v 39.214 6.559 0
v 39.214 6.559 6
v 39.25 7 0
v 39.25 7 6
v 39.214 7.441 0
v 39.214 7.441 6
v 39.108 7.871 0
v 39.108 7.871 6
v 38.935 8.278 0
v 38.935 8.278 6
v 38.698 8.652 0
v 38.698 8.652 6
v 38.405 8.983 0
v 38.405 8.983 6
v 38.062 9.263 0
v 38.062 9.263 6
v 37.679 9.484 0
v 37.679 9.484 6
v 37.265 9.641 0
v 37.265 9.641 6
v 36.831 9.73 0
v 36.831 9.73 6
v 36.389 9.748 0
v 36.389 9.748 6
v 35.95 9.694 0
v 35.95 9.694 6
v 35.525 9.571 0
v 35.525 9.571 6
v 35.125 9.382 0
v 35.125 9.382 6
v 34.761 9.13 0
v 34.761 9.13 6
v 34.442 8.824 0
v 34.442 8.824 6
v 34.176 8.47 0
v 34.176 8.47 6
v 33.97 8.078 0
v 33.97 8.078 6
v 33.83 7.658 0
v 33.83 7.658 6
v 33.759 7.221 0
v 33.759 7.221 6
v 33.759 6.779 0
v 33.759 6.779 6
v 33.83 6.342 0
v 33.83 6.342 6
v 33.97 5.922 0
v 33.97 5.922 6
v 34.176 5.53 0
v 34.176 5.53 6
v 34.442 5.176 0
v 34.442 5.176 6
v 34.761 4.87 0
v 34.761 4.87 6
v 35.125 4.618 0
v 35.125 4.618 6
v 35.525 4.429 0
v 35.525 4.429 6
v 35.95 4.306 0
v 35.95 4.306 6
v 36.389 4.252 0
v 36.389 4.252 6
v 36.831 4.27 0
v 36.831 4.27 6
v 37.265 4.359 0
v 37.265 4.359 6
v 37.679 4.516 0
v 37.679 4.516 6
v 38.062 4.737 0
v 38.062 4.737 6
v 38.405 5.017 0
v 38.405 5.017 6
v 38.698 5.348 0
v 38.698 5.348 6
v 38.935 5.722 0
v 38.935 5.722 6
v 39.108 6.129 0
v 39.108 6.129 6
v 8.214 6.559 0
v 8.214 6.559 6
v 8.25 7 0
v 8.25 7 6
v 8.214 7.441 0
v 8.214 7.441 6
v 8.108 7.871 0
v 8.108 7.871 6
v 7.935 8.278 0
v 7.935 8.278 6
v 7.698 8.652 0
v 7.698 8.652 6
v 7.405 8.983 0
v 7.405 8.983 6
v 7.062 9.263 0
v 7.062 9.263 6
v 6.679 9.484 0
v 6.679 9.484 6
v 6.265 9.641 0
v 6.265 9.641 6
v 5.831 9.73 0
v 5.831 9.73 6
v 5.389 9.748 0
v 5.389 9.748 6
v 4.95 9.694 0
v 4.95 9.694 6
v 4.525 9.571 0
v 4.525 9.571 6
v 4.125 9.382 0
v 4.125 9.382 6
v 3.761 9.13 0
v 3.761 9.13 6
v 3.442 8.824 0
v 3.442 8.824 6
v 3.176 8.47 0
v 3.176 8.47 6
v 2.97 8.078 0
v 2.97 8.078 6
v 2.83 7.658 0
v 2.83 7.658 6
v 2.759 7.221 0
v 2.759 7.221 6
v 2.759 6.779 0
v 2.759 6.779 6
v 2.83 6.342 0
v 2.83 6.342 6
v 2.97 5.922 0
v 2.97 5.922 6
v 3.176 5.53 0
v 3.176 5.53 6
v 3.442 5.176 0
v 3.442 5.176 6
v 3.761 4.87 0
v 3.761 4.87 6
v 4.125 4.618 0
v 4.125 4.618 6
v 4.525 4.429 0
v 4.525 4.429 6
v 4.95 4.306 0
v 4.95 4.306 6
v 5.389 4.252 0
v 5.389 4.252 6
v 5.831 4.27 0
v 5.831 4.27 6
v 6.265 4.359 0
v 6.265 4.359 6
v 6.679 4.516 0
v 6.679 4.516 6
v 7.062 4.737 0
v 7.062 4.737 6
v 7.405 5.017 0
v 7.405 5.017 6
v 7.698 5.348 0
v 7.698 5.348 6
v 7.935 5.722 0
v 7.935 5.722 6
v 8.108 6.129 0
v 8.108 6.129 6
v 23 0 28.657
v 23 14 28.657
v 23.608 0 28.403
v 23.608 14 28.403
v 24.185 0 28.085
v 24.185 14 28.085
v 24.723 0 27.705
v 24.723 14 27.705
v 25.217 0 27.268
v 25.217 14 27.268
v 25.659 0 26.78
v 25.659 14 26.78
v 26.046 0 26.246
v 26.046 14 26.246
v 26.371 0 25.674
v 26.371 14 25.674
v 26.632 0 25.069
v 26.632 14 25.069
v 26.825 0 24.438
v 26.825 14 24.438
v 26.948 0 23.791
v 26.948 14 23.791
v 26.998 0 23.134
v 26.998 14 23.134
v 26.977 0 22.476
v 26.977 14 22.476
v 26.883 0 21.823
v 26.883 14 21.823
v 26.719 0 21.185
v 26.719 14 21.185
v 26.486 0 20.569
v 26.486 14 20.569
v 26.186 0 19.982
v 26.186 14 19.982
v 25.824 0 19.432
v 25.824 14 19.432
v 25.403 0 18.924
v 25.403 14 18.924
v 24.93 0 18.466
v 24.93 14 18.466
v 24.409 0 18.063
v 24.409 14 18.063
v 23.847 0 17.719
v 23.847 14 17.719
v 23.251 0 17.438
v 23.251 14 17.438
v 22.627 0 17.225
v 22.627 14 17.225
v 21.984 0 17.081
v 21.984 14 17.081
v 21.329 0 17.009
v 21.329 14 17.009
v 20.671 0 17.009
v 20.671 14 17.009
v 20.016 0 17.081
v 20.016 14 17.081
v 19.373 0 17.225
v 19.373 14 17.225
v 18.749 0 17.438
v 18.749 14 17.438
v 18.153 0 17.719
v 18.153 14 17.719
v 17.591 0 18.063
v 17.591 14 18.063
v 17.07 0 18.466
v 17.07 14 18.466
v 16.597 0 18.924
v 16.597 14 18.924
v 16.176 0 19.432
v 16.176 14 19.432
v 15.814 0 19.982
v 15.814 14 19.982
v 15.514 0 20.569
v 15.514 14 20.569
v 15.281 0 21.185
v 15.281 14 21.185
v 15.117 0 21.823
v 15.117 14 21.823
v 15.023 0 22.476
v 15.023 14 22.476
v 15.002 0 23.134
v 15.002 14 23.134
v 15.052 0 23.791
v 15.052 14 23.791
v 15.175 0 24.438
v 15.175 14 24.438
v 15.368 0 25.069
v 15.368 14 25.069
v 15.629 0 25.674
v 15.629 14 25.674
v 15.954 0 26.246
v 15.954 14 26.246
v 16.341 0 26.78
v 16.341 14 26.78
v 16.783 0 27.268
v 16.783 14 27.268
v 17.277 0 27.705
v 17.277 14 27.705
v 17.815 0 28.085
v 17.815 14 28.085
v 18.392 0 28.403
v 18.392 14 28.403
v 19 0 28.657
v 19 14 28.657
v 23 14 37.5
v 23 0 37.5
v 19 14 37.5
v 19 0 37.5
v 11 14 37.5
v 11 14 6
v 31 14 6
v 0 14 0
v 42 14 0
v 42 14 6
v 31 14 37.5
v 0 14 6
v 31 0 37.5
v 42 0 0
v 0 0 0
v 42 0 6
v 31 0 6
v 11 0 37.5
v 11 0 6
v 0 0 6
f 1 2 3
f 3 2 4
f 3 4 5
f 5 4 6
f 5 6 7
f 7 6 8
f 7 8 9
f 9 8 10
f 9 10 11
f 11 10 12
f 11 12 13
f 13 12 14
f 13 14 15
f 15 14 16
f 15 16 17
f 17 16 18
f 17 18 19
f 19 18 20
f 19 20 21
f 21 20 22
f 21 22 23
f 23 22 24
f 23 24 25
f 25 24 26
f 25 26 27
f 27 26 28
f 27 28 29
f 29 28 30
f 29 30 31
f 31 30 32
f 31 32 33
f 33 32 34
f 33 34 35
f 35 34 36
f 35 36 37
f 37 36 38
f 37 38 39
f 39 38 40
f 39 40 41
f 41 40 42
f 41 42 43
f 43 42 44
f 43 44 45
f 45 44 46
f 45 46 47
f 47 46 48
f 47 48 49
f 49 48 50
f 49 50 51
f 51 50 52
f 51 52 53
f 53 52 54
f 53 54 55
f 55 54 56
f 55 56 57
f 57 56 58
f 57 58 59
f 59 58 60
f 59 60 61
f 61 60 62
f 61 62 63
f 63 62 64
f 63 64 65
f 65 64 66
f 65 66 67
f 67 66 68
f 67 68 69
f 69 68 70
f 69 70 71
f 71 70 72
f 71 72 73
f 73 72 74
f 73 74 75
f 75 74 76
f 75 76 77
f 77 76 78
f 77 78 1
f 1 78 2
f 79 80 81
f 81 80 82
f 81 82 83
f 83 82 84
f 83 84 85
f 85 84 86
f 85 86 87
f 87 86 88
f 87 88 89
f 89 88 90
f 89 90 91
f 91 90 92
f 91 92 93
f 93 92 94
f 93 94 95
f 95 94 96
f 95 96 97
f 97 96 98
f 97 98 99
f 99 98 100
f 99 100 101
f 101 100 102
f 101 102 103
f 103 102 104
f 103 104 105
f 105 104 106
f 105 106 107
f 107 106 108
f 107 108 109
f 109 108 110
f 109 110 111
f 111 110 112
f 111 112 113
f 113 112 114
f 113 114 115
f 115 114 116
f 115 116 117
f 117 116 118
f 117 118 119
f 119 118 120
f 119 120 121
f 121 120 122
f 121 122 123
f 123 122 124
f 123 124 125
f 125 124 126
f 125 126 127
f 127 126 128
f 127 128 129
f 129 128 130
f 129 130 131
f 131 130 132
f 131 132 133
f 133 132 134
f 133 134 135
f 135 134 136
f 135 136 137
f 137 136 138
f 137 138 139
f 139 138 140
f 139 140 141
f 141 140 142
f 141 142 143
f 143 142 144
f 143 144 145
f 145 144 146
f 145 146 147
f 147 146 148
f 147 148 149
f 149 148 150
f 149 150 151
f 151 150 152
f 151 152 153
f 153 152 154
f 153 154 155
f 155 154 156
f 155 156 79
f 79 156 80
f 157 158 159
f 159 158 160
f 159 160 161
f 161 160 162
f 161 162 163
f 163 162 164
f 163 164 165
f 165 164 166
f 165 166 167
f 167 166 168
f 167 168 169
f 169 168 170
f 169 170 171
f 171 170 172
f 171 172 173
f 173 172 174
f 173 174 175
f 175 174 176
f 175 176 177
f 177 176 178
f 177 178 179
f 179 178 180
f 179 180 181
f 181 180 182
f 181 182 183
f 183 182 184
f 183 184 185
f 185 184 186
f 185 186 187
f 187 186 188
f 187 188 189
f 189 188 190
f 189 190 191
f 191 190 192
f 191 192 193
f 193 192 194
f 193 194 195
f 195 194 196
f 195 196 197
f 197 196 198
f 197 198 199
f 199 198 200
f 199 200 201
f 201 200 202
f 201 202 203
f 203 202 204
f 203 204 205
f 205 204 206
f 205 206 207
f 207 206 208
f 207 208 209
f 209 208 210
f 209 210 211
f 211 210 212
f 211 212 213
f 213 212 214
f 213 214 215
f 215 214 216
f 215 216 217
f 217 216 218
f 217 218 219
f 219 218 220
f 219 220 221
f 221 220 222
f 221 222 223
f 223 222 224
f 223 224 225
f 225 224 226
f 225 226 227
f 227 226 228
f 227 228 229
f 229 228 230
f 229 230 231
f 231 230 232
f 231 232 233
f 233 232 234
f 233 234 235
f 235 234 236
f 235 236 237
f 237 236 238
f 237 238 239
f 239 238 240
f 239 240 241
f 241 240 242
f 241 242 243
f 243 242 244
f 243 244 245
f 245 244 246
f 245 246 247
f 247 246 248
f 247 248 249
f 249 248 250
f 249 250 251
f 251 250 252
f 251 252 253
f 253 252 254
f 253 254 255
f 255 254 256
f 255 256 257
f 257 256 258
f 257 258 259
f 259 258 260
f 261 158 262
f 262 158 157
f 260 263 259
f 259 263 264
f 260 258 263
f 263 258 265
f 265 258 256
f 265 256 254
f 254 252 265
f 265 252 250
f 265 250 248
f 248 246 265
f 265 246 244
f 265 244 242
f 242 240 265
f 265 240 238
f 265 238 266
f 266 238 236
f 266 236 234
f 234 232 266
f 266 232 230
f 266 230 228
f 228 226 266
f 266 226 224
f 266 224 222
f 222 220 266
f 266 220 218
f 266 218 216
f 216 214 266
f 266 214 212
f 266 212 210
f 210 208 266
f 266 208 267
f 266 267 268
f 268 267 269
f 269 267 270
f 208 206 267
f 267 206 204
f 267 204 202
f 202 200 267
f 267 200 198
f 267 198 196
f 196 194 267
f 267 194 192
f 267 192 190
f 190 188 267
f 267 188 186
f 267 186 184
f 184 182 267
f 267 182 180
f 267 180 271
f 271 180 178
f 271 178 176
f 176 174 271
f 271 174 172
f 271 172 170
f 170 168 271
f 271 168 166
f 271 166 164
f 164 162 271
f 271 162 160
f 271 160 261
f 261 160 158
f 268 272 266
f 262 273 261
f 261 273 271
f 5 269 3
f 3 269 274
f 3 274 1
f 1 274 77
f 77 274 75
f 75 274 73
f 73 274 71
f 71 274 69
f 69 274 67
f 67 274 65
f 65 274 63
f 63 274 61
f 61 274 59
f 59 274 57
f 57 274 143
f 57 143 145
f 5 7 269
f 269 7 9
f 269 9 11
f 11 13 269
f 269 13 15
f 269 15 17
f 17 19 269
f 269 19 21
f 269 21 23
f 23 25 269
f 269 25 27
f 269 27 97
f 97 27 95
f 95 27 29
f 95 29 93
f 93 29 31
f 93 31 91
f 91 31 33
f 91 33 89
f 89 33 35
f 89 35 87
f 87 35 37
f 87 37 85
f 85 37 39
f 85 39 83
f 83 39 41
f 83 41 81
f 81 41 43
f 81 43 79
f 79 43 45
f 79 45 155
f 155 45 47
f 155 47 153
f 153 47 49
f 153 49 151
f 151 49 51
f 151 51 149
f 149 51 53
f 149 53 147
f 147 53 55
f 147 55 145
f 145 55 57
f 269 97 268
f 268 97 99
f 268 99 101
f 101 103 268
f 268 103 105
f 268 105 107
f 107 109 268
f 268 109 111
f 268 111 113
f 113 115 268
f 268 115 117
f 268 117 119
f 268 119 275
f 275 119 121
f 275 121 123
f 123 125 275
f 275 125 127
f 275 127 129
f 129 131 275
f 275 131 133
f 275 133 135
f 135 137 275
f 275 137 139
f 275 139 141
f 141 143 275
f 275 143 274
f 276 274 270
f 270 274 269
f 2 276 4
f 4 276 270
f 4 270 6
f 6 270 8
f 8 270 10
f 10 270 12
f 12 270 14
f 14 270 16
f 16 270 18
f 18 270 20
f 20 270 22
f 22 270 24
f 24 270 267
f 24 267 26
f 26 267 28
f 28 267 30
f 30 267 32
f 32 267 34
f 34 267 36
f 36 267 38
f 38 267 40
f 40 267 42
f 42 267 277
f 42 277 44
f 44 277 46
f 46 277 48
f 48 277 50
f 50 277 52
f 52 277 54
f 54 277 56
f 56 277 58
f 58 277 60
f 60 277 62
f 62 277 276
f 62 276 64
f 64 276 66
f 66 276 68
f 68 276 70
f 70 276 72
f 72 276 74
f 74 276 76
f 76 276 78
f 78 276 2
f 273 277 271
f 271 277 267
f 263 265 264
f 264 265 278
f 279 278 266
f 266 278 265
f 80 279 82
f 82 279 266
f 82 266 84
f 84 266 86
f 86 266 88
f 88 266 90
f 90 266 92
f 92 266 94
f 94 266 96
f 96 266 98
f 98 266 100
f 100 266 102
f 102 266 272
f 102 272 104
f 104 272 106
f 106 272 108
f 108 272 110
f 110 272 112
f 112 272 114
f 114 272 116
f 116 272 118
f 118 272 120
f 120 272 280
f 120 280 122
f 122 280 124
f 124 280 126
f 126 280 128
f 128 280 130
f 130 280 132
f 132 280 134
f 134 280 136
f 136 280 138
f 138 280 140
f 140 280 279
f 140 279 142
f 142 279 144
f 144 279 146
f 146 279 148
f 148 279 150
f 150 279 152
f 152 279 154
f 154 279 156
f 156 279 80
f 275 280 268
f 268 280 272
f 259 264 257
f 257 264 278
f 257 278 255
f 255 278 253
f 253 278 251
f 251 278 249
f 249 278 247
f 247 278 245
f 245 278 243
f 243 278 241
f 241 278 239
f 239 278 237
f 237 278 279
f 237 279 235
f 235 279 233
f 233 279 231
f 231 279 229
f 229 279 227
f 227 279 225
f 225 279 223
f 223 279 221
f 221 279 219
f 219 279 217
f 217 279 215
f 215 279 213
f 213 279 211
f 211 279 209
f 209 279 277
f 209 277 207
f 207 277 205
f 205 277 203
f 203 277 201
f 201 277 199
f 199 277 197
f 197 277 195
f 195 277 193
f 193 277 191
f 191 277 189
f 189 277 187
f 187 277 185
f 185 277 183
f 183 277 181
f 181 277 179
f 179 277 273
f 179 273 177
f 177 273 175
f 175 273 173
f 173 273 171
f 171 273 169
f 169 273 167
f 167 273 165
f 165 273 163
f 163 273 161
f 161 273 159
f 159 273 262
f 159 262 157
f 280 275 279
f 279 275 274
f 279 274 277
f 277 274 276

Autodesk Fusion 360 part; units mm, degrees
sketch "Sketch1" plane through (0, 0, 0) normal (0, 1, 0) x (1, 0, 0)
  line L0 (0, 0) -> (42, 0)
  line L1 (0, 0) -> (0, -6)
  line L2 (42, 0) -> (42, -6)
  line L3 (42, -6) -> (31, -6)
  line L4 (31, -6) -> (31, -37.5)
  line L5 (0, -6) -> (11, -6)
  line L6 (11, -6) -> (11, -37.5)
  line L7 (11, -37.5) -> (31, -37.5)
  dimension "d1" = 42
  dimension "d2" = 6
  dimension "d3" = 6
  dimension "d7" = 11
  dimension "d8" = 31.5
  dimension "d9" = 11
  dimension "d10" = 31.5
extrude "Extrude1" add sketch "Sketch1" along normal blind 14
sketch "Sketch2" plane through (0, 0, 0) normal (0, -1, 0) x (1, 0, 0)
  line L0 (0, 6) -> (0, 0)
  line L1 (0, 0) -> (42, 0)
  line L2 (42, 0) -> (42, 6)
  line L3 (42, 6) -> (31, 6)
  line L4 (31, 6) -> (31, 37.5)
  line L5 (31, 37.5) -> (11, 37.5)
  line L6 (11, 37.5) -> (11, 6)
  line L7 (11, 6) -> (0, 6)
  line L8 (0, 0) -> (21, 0)
  line L9 (21, 0) -> (21, 23)
  circle A0 centre (21, 23) radius 6
  line L10 (21, 37.5) -> (23, 37.5)
  line L11 (21, 37.5) -> (19, 37.5)
  line L12 (19, 37.5) -> (19, 28.6569)
  line L13 (23, 37.5) -> (23, 28.6569)
  dimension "d13" = 23
  dimension "d14" = 12
  dimension "d15" = 2
  dimension "d16" = 2
extrude "Extrude2" cut sketch "Sketch2" against normal blind 49.568 contours A0 | L5 A0 L10 L11 L12 L13
sketch "Sketch3" plane through (0, 0, 6) normal (0, 0, 1) x (-1, 0, 0)
  line L0 (0, 0) -> (-11, 0)
  line L1 (-11, 0) -> (-11, -14)
  line L2 (-11, -14) -> (0, -14)
  line L3 (0, -14) -> (0, 0)
  line L4 (-5.5, -14) -> (-5.5, 0)
  line L5 (0, -7) -> (-11, -7)
  circle A0 centre (-5.5, -7) radius 2.75
  dimension "d19" = 5.5
extrude "Extrude3" cut sketch "Sketch3" against normal blind 15.501 contours L4 L5 A0 | L4 L5 A0 | L4 L5 A0 | L4 L5 A0
sketch "Sketch4" plane through (0, 0, 6) normal (0, 0, 1) x (-1, 0, 0)
  line L0 (-31, 0) -> (-42, 0)
  line L1 (-42, 0) -> (-42, -14)
  line L2 (-42, -14) -> (-31, -14)
  line L3 (-31, -14) -> (-31, 0)
  circle A0 centre (-36.5, -7) radius 2.75
  dimension "d22" = 5.5
extrude "Extrude4" cut sketch "Sketch4" against normal blind 36.862 contours A0
